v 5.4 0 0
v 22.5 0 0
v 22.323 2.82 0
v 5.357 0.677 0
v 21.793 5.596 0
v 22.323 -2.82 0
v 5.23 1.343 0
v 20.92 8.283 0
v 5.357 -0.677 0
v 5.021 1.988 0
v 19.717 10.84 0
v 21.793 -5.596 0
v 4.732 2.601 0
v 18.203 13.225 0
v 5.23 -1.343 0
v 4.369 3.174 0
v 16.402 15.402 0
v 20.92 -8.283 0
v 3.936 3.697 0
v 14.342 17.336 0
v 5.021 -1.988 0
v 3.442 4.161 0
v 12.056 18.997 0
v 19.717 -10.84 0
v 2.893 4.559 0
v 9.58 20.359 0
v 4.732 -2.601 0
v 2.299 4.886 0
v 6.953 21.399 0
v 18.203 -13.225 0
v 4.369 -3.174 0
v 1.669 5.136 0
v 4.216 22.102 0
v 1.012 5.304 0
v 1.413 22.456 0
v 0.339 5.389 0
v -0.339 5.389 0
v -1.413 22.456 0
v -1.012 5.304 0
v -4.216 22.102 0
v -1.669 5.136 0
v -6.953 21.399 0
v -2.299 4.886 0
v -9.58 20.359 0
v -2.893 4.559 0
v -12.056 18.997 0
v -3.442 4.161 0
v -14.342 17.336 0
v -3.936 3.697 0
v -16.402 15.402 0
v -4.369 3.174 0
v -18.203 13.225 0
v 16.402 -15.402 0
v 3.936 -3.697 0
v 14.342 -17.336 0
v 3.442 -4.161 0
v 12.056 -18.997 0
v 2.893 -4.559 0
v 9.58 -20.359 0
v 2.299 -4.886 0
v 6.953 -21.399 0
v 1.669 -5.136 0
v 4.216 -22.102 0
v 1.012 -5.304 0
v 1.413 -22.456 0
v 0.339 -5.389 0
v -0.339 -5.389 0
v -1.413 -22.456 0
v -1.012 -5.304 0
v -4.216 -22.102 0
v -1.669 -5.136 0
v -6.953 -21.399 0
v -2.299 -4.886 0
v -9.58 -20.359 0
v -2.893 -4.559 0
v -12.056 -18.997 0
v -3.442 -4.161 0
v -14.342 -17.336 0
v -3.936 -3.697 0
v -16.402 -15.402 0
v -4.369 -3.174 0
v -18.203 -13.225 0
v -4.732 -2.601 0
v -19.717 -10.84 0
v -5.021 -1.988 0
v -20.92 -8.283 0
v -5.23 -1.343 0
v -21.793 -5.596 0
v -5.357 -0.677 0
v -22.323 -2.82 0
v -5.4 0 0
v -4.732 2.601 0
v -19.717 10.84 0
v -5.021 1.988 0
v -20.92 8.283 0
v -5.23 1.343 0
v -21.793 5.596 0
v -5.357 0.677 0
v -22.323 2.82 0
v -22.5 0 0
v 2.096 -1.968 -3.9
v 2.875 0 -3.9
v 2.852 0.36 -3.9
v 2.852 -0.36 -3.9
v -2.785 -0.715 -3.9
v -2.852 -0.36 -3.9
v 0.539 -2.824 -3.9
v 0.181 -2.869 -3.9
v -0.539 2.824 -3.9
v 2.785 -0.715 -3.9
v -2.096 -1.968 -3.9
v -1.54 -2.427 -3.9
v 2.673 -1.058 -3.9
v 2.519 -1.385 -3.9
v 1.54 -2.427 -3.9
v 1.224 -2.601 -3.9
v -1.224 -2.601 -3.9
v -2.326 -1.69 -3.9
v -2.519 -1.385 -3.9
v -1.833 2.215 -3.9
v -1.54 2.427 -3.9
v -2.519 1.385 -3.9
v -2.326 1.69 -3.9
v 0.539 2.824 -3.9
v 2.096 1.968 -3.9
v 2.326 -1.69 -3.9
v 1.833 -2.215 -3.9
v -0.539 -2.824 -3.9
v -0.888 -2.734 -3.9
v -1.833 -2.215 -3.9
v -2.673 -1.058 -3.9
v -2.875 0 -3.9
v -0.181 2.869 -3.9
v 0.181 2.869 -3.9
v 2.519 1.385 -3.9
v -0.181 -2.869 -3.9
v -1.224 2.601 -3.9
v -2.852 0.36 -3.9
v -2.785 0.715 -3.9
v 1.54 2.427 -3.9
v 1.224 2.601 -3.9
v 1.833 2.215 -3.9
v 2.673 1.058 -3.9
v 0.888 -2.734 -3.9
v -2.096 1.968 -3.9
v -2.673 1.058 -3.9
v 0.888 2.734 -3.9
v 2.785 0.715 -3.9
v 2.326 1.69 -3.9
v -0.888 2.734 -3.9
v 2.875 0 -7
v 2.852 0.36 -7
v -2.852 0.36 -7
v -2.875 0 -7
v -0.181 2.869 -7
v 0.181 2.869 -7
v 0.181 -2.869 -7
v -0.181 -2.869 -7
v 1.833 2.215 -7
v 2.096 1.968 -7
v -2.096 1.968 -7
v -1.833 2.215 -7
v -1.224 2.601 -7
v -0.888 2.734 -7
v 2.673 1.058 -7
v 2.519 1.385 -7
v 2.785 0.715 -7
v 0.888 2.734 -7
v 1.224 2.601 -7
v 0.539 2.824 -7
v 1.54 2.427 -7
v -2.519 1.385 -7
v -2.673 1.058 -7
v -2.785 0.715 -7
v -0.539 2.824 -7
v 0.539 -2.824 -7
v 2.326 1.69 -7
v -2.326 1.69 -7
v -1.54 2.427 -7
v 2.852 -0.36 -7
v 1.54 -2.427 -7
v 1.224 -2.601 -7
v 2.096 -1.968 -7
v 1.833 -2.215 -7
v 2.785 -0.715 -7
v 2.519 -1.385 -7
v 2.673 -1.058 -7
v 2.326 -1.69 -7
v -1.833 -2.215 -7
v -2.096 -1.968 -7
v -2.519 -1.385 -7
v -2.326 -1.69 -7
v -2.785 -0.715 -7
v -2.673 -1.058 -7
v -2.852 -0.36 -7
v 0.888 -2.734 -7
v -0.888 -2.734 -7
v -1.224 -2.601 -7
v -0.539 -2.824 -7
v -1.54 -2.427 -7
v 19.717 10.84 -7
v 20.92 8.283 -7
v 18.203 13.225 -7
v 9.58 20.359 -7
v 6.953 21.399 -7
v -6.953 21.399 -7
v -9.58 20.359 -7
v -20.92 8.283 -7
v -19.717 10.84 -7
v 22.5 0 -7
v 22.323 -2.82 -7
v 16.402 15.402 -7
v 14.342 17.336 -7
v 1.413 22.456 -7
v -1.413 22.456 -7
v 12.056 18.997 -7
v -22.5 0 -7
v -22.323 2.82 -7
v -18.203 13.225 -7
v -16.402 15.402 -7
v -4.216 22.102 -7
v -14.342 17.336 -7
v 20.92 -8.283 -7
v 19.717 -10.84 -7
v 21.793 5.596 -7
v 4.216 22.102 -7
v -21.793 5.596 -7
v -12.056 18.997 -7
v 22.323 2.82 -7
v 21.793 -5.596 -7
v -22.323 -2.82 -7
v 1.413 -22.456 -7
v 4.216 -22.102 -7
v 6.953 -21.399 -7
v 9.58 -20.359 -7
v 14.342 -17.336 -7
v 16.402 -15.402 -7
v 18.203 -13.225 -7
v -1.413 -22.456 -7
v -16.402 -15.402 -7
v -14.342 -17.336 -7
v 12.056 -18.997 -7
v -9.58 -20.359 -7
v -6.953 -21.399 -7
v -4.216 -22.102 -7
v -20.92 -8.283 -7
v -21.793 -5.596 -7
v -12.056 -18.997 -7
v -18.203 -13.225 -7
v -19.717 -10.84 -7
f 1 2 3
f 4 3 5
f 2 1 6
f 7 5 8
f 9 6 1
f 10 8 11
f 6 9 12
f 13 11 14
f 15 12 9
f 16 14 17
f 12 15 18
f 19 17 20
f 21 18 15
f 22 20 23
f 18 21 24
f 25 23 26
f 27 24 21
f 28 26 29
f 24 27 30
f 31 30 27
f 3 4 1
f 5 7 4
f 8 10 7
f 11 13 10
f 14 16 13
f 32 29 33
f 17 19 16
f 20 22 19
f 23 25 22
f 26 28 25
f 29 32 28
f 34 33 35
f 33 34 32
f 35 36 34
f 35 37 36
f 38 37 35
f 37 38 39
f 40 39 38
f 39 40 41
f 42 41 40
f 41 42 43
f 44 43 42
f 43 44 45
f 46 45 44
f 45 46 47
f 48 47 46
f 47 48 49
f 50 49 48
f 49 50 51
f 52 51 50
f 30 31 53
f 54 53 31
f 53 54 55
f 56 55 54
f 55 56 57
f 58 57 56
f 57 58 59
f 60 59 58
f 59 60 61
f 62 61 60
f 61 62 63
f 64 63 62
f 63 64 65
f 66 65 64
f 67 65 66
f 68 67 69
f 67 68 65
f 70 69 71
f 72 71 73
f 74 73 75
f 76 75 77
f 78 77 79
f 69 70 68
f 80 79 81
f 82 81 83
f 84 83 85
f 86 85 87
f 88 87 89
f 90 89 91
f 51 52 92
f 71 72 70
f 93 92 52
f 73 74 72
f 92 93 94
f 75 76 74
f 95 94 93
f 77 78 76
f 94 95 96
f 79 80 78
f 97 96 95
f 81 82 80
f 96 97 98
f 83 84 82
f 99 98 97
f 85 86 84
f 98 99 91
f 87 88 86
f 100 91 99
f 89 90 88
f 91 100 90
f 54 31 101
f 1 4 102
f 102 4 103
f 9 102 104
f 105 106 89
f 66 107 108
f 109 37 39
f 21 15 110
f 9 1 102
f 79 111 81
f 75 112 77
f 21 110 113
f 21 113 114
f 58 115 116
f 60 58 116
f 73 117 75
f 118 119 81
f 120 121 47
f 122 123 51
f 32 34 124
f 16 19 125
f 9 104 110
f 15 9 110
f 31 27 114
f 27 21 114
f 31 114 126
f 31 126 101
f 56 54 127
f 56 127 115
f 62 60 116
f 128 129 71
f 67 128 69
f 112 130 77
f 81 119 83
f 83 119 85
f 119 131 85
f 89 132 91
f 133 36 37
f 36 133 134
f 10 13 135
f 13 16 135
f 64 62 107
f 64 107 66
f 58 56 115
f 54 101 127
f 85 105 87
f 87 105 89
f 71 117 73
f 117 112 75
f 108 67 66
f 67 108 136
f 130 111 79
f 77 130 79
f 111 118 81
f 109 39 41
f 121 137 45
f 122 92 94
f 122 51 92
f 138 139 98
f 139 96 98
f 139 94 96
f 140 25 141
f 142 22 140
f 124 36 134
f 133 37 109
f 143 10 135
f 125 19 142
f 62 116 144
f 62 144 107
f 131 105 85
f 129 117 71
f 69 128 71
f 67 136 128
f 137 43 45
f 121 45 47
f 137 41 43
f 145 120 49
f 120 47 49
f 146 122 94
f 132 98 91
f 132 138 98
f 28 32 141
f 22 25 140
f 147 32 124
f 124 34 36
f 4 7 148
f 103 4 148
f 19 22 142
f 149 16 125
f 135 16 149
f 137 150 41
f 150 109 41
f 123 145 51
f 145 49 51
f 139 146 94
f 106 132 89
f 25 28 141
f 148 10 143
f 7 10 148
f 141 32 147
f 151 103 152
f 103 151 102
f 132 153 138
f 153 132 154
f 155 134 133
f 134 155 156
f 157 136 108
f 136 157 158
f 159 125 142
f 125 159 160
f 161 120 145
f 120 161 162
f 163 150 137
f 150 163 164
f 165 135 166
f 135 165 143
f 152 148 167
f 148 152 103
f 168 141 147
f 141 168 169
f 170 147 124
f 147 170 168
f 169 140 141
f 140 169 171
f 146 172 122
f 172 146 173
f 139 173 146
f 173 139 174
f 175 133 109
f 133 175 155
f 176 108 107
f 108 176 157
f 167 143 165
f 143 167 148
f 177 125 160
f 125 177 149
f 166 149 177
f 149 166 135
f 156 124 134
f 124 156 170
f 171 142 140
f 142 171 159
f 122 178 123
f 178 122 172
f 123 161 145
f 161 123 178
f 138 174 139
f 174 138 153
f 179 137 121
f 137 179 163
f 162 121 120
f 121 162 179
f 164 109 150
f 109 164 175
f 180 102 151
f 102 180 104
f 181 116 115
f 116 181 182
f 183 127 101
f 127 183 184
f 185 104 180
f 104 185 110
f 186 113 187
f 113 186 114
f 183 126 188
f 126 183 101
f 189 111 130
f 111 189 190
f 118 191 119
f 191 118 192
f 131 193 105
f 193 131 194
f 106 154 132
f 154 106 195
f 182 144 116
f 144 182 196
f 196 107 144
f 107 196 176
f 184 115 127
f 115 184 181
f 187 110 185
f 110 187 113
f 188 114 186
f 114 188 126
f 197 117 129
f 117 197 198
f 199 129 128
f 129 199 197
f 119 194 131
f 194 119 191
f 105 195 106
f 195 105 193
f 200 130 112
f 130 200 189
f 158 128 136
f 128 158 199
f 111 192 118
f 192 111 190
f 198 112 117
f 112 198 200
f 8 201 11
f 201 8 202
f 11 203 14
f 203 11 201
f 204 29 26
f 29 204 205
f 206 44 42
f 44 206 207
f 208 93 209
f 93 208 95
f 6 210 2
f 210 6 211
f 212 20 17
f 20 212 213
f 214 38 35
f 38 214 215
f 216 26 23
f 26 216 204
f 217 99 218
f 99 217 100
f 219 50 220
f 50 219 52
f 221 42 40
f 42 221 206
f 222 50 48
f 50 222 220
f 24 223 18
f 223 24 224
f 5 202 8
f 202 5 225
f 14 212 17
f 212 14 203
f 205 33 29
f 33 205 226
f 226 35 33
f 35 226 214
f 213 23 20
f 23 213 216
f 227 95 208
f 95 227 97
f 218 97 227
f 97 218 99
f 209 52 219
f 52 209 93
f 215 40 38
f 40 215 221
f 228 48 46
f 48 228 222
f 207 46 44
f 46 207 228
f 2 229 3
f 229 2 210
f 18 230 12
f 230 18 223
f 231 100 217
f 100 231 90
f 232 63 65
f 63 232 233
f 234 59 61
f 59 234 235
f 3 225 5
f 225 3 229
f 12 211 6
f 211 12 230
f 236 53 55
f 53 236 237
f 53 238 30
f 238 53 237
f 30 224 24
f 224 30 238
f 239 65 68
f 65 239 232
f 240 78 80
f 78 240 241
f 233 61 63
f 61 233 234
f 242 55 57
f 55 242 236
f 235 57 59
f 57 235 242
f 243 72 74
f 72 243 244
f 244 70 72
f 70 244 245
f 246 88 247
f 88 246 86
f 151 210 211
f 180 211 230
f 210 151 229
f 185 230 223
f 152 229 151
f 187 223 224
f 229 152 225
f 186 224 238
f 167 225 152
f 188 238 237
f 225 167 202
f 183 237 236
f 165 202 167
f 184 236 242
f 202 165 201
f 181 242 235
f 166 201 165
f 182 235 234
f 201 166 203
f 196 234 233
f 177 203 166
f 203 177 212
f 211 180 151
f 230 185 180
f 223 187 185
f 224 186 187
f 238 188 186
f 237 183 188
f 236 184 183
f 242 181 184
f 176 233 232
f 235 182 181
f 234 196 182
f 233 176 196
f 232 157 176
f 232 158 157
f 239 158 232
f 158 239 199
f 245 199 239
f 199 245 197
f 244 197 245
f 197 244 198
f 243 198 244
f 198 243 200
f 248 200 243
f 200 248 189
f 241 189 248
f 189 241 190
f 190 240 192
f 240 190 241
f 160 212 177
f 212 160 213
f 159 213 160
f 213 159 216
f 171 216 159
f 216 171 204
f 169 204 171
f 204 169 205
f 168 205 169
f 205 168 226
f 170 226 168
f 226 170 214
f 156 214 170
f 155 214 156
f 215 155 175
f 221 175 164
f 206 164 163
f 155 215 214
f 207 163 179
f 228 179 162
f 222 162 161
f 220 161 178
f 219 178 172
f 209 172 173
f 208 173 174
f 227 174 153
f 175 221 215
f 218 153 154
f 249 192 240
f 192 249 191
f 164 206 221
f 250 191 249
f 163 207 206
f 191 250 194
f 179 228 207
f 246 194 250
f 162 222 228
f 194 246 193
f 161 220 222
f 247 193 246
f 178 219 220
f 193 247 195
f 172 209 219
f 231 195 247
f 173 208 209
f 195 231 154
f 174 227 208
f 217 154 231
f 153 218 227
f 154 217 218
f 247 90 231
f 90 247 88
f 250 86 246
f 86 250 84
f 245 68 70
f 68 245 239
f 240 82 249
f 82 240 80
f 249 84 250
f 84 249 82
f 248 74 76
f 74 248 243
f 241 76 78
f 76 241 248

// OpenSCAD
$fn = 50;


difference() {
	union() {
		translate(v = [0, 0, -7.0000000000]) {
			cylinder(h = 7, r = 22.5000000000);
		}
	}
	union() {
		translate(v = [0, 0, 0]) {
			rotate(a = [0, 0, 0]) {
				difference() {
					union() {
						#translate(v = [0, 0, -9.0000000000]) {
							cylinder(h = 9, r = 2.6000000000);
						}
						#translate(v = [0, 0, -3.9000000000]) {
							cylinder(h = 3.9000000000, r1 = 2.8750000000, r2 = 5.4000000000);
						}
						#translate(v = [0, 0, -9.0000000000]) {
							cylinder(h = 9, r = 2.8750000000);
						}
						#translate(v = [0, 0, -9.0000000000]) {
							cylinder(h = 9, r = 2.6000000000);
						}
					}
					union();
				}
			}
		}
	}
}
